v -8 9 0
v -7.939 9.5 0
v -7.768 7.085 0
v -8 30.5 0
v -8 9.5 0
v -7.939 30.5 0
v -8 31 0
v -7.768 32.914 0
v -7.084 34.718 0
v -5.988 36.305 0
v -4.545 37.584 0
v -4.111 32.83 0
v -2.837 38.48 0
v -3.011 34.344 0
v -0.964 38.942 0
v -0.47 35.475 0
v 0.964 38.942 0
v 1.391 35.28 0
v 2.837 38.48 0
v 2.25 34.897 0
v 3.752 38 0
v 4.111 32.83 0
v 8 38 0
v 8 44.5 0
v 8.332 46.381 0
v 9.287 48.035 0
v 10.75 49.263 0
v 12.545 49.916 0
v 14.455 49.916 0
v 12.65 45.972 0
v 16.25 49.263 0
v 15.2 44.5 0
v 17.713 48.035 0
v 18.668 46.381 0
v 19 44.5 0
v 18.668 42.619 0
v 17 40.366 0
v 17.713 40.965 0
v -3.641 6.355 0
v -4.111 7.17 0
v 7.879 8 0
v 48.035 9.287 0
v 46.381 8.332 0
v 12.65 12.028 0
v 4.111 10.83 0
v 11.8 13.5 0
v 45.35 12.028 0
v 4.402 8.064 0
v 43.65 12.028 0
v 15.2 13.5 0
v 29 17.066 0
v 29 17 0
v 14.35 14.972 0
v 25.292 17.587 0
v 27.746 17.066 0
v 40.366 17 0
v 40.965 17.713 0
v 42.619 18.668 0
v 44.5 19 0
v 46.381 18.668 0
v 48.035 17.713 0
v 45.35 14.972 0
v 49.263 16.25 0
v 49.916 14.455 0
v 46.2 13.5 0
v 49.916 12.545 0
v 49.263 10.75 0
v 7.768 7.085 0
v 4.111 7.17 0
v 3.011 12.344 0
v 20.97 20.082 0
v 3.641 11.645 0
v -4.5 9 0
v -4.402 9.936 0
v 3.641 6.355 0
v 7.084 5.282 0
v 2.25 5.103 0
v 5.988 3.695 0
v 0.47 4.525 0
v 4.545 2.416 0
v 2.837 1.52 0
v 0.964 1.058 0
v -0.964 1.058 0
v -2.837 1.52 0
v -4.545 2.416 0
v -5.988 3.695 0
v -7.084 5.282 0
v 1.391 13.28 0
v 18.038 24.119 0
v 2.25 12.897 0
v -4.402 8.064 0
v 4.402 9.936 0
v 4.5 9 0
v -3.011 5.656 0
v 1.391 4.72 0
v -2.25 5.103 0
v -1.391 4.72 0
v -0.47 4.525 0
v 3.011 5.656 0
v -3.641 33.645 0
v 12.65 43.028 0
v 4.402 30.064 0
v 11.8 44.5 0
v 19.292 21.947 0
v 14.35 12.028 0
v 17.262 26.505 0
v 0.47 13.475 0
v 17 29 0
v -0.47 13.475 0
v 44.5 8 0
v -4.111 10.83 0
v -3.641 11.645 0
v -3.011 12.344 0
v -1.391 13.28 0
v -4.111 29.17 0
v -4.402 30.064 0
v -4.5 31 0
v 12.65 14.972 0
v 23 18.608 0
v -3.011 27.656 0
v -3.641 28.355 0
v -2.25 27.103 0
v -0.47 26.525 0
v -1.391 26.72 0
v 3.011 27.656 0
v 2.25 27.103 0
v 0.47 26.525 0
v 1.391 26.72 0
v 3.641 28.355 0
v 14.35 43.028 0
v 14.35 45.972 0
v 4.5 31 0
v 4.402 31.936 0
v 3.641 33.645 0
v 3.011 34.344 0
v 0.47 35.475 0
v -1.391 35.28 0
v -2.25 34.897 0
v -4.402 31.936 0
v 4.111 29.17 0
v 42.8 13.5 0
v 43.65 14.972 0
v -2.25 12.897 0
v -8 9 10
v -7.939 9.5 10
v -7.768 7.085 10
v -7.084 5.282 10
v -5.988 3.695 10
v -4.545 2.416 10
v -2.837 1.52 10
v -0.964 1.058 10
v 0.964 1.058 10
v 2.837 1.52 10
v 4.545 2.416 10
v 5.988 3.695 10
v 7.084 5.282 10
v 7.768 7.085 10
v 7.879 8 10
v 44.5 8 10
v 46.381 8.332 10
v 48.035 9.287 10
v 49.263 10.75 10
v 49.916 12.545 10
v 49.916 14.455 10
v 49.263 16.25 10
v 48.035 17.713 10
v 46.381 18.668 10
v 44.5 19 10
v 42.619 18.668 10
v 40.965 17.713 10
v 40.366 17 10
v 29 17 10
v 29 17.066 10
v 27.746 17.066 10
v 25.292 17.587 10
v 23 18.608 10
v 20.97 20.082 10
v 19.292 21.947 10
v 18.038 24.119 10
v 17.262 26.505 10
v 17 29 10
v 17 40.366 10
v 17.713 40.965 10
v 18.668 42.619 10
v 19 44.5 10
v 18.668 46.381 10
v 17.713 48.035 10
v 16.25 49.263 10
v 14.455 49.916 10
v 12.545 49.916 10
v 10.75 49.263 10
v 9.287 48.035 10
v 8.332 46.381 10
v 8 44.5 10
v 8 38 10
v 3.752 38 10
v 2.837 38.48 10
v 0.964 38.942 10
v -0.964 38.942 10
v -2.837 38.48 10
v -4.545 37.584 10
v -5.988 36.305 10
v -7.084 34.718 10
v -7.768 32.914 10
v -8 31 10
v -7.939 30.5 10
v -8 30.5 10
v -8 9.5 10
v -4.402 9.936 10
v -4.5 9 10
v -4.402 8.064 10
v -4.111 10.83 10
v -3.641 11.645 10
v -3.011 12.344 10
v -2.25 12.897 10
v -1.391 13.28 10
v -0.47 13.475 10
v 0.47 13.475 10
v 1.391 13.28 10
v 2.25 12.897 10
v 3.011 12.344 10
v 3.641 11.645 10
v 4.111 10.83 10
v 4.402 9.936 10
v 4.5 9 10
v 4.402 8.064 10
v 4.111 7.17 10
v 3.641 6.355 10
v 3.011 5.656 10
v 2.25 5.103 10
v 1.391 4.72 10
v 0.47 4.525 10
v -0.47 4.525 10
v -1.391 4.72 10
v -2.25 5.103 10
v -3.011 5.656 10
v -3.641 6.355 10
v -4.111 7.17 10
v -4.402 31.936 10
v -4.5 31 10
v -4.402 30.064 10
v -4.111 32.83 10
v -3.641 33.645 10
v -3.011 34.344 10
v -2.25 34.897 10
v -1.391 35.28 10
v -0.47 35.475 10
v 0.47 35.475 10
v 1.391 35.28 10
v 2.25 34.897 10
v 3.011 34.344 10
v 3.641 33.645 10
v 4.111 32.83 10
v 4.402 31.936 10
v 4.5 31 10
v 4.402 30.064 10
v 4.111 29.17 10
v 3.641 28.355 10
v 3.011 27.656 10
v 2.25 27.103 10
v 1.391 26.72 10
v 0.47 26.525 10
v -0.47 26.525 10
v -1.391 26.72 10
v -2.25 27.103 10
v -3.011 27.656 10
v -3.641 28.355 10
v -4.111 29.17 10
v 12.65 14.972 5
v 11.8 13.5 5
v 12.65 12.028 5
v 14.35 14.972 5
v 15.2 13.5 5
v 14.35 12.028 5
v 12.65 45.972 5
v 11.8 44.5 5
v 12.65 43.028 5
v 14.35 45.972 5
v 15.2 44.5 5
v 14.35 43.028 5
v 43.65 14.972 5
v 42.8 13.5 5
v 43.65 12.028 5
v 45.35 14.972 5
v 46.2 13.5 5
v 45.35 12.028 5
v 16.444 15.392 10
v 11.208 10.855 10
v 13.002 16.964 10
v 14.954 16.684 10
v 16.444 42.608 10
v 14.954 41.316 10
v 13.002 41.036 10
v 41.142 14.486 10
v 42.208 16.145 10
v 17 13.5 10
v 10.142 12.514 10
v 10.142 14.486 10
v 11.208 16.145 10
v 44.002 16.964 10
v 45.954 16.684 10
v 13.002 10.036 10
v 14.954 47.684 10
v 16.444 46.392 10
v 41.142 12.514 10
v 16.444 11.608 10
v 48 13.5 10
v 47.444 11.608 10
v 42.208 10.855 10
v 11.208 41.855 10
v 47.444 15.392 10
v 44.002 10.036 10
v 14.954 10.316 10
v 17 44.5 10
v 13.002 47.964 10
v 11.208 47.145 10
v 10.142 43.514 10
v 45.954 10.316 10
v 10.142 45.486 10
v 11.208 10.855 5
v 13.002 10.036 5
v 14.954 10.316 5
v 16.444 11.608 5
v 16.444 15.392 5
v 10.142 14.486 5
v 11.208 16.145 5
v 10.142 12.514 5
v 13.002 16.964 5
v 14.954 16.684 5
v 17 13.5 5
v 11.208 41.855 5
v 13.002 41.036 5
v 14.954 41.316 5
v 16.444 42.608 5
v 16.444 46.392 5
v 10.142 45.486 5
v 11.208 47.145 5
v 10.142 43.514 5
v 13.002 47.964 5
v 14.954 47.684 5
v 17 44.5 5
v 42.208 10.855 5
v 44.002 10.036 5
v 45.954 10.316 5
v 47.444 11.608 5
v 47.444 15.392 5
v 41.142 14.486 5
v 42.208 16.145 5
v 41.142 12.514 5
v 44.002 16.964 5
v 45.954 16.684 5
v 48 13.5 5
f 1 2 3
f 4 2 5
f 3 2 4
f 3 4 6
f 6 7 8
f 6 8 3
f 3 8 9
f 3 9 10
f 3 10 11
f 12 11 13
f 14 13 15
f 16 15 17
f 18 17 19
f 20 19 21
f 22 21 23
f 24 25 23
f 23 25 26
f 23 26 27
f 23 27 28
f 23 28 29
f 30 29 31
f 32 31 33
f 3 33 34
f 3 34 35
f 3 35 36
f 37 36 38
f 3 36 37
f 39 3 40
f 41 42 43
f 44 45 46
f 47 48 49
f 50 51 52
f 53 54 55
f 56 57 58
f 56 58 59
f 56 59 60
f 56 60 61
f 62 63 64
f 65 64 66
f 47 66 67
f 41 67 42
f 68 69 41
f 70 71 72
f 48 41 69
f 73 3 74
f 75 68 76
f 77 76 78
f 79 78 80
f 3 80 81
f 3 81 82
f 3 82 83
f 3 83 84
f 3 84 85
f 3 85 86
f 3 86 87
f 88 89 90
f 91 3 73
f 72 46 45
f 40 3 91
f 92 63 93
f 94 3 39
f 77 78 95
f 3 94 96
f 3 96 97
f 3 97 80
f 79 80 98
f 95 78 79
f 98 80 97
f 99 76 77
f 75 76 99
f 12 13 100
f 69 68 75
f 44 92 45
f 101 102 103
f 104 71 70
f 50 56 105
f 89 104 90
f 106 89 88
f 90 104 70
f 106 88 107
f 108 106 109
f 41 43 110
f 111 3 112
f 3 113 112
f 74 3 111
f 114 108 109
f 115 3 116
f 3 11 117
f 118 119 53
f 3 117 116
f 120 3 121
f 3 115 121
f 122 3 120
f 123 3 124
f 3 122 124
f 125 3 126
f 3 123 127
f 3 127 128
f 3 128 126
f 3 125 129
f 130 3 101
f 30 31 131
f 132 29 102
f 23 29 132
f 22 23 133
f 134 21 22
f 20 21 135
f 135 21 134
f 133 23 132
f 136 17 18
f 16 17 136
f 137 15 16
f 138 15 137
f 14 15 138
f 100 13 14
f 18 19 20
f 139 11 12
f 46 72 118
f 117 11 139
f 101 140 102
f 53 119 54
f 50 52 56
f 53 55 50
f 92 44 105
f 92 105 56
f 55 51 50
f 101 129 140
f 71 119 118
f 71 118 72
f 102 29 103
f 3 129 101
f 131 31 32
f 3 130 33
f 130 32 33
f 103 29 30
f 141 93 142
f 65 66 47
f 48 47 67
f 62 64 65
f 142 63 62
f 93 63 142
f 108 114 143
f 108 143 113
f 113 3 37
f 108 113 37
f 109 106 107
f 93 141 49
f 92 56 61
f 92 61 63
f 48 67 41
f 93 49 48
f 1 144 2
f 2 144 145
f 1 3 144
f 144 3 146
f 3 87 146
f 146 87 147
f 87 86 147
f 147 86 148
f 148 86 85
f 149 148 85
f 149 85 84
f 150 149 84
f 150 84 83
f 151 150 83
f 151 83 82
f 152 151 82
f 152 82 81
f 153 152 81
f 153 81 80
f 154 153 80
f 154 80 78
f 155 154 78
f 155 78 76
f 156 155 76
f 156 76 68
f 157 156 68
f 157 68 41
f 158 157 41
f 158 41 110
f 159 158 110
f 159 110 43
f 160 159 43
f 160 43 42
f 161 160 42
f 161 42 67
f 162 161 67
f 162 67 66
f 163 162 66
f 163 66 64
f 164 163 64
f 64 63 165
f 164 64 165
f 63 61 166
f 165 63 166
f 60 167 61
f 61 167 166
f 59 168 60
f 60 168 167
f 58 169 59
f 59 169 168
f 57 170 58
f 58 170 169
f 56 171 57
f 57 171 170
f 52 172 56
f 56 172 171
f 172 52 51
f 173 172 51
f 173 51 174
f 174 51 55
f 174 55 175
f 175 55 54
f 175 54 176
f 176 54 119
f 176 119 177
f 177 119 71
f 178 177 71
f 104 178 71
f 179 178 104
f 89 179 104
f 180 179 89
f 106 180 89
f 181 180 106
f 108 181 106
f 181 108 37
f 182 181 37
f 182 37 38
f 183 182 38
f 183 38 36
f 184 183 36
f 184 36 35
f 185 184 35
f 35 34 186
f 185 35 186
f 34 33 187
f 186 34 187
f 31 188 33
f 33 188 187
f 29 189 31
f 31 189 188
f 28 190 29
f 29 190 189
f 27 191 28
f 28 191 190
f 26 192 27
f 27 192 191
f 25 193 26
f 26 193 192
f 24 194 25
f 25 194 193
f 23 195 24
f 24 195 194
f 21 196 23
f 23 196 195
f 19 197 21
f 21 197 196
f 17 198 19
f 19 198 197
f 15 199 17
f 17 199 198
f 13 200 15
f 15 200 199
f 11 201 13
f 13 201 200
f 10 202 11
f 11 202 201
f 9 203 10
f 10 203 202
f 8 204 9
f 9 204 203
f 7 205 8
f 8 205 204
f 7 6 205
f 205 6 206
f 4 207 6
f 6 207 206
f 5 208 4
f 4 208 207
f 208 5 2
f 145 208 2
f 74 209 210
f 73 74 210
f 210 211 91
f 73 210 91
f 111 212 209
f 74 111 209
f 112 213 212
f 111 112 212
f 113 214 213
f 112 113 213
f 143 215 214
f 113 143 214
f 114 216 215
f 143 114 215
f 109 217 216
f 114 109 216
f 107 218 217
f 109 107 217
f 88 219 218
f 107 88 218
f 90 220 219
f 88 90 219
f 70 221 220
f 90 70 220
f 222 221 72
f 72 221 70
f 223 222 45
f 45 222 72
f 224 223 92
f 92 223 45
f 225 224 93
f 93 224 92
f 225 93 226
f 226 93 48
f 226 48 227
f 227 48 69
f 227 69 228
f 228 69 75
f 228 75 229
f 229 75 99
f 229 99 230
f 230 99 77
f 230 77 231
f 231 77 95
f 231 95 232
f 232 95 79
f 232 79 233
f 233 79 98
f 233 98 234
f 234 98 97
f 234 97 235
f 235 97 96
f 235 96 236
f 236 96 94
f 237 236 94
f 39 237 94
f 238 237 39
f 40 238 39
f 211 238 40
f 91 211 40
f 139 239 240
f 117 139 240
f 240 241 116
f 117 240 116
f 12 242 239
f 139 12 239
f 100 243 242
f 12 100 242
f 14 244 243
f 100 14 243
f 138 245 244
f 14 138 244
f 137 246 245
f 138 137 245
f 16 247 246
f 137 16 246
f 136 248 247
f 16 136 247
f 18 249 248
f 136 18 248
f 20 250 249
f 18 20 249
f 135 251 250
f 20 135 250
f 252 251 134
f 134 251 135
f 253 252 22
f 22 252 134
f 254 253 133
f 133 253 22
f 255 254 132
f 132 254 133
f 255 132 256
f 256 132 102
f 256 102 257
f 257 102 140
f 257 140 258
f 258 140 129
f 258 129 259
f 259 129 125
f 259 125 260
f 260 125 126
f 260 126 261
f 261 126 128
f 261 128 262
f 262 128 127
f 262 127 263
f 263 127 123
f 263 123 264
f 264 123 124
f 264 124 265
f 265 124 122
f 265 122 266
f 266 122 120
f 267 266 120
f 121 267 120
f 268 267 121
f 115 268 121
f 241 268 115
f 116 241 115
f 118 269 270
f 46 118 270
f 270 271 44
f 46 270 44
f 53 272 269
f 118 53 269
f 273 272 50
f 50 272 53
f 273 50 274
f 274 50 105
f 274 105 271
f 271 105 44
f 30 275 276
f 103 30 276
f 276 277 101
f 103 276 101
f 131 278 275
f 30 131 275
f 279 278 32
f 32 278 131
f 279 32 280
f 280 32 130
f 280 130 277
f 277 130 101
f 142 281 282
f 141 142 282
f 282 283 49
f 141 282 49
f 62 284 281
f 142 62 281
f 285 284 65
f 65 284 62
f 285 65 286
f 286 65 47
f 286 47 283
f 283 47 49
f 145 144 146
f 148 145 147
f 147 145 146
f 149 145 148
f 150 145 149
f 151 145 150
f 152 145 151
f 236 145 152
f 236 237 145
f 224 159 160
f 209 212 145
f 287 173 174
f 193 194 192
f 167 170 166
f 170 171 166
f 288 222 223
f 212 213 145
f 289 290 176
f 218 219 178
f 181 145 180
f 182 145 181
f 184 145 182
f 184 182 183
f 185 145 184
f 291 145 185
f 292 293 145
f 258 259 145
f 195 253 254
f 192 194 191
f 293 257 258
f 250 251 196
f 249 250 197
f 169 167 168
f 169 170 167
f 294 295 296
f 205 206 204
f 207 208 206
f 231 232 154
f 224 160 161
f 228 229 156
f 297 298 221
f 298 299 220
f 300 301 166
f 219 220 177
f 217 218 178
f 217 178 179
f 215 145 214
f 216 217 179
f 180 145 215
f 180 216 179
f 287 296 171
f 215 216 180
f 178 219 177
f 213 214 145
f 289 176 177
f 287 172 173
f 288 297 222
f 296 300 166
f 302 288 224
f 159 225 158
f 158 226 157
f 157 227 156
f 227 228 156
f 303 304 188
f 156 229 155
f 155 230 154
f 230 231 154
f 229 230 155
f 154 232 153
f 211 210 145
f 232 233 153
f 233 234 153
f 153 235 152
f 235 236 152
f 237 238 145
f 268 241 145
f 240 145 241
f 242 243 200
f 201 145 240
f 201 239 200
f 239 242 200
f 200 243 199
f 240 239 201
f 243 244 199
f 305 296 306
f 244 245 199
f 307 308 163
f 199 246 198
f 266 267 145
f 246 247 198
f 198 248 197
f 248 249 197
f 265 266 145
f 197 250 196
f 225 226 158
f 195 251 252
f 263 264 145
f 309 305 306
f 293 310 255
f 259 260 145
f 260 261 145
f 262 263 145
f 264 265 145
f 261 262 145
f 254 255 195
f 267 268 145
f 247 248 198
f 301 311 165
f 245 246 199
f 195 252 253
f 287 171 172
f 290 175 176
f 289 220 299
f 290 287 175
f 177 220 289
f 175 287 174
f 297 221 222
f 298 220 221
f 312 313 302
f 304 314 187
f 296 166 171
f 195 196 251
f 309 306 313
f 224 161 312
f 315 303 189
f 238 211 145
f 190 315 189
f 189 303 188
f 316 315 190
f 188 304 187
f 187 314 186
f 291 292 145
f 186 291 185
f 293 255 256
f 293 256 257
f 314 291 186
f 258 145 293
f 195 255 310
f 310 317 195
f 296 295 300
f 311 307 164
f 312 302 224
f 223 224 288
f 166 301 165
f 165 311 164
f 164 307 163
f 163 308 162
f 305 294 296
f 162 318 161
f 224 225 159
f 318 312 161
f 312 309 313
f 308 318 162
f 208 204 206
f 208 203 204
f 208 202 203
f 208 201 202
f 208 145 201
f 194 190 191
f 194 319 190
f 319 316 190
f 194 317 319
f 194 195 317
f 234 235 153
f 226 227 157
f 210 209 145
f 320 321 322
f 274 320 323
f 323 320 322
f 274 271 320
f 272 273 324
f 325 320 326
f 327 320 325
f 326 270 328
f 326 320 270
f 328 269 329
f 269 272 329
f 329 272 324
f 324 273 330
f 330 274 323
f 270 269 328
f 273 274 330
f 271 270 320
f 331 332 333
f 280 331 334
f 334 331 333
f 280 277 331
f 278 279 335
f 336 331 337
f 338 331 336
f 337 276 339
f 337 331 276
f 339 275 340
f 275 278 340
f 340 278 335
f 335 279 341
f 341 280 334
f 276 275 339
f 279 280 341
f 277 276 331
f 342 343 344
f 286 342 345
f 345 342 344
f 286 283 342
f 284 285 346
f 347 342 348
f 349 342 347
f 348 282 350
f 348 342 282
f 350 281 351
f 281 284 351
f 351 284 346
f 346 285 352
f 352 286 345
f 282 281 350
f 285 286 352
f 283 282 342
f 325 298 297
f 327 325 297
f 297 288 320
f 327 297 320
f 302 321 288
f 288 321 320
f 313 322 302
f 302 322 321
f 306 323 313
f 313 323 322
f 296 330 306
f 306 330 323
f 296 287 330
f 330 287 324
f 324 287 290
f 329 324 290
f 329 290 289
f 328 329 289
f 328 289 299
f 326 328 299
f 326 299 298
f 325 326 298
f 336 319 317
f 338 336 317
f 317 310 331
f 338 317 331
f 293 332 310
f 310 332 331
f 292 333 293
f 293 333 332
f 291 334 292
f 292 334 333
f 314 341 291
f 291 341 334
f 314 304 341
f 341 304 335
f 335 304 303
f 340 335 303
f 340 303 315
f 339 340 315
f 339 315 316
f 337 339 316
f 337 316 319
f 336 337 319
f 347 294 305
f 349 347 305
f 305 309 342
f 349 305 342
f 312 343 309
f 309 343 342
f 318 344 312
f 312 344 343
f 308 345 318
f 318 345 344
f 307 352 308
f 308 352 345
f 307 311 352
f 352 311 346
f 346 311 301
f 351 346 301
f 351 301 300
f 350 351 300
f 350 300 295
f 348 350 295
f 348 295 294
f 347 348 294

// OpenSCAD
// PRUSA iteration3
// Y motor mount
// GNU GPL v3
// Josef Průša <iam@josefprusa.cz> and contributors
// http://www.reprap.org/wiki/Prusa_Mendel
// http://prusamendel.org

//include <configuration.scad>

module y_motor_base(){
 // Motor holding part
 translate(v = [29,-21+50,0]){
  translate(v = [-21+4.5,0,5]) cube(size = [9,31,10], center=true);
  translate(v = [-21+4.5+31/2+1,0-31/2-1,5]) cube(size = [31,9,10], center=true);
  //translate(v = [-15.5,-15.5,0]) cylinder(h = 10, r=5.5);
  translate(v = [-15.5,-15.5,0]) cube(size=[15.5,15.5,10], center=false);
  translate(v = [-15.5,+15.5,0]) cylinder(h = 10, r=5.5);
  translate(v = [+15.5,-15.5,0]) rotate([0,0,90]) cylinder(h = 10, r=5.5);
  // Joins motor holder and rod plate
  translate(v = [-29,-21,0]) cube(size = [14,30,10]);
 }
 // Front holding part
 translate(v = [0,10-1,0]) cylinder(h = 10, r=8);
 translate(v = [0,20,5])cube(size = [16,21,10], center=true);	
 translate(v = [0,30+1,0])cylinder(h = 10, r=8);
}

module y_motor_holes(){
 translate(v = [29,-21+50,0]){
  // Screw head holes
  translate(v = [-15.5,-15.5,-1]) cylinder(h = 10, r=1.7);
  translate(v = [-15.5,+15.5,-1]) cylinder(h = 10, r=1.7);
  translate(v = [+15.5,-15.5,-1]) cylinder(h = 10, r=1.7);
  // Screw holes
  translate(v = [-15.5,-15.5,5]) cylinder(h = 7, r=3.5);
  translate(v = [-15.5,+15.5,5]) cylinder(h = 7, r=3.5);
  translate(v = [+15.5,-15.5,5]) cylinder(h = 7, r=3.5);
  // Shaft hole
  translate(v = [0,0,5]) cylinder(h = 11, r = 12, center = true);
 }
 translate(v = [0,10-1,-1]) cylinder(h = 12, r=4.5, $fn=30);	
 translate(v = [0,30+1,-1])cylinder(h = 12, r=4.5, $fn=30);
}

// Final part
module y_motor(){
 difference(){
  y_motor_base();
  y_motor_holes();
 }
}

y_motor();
